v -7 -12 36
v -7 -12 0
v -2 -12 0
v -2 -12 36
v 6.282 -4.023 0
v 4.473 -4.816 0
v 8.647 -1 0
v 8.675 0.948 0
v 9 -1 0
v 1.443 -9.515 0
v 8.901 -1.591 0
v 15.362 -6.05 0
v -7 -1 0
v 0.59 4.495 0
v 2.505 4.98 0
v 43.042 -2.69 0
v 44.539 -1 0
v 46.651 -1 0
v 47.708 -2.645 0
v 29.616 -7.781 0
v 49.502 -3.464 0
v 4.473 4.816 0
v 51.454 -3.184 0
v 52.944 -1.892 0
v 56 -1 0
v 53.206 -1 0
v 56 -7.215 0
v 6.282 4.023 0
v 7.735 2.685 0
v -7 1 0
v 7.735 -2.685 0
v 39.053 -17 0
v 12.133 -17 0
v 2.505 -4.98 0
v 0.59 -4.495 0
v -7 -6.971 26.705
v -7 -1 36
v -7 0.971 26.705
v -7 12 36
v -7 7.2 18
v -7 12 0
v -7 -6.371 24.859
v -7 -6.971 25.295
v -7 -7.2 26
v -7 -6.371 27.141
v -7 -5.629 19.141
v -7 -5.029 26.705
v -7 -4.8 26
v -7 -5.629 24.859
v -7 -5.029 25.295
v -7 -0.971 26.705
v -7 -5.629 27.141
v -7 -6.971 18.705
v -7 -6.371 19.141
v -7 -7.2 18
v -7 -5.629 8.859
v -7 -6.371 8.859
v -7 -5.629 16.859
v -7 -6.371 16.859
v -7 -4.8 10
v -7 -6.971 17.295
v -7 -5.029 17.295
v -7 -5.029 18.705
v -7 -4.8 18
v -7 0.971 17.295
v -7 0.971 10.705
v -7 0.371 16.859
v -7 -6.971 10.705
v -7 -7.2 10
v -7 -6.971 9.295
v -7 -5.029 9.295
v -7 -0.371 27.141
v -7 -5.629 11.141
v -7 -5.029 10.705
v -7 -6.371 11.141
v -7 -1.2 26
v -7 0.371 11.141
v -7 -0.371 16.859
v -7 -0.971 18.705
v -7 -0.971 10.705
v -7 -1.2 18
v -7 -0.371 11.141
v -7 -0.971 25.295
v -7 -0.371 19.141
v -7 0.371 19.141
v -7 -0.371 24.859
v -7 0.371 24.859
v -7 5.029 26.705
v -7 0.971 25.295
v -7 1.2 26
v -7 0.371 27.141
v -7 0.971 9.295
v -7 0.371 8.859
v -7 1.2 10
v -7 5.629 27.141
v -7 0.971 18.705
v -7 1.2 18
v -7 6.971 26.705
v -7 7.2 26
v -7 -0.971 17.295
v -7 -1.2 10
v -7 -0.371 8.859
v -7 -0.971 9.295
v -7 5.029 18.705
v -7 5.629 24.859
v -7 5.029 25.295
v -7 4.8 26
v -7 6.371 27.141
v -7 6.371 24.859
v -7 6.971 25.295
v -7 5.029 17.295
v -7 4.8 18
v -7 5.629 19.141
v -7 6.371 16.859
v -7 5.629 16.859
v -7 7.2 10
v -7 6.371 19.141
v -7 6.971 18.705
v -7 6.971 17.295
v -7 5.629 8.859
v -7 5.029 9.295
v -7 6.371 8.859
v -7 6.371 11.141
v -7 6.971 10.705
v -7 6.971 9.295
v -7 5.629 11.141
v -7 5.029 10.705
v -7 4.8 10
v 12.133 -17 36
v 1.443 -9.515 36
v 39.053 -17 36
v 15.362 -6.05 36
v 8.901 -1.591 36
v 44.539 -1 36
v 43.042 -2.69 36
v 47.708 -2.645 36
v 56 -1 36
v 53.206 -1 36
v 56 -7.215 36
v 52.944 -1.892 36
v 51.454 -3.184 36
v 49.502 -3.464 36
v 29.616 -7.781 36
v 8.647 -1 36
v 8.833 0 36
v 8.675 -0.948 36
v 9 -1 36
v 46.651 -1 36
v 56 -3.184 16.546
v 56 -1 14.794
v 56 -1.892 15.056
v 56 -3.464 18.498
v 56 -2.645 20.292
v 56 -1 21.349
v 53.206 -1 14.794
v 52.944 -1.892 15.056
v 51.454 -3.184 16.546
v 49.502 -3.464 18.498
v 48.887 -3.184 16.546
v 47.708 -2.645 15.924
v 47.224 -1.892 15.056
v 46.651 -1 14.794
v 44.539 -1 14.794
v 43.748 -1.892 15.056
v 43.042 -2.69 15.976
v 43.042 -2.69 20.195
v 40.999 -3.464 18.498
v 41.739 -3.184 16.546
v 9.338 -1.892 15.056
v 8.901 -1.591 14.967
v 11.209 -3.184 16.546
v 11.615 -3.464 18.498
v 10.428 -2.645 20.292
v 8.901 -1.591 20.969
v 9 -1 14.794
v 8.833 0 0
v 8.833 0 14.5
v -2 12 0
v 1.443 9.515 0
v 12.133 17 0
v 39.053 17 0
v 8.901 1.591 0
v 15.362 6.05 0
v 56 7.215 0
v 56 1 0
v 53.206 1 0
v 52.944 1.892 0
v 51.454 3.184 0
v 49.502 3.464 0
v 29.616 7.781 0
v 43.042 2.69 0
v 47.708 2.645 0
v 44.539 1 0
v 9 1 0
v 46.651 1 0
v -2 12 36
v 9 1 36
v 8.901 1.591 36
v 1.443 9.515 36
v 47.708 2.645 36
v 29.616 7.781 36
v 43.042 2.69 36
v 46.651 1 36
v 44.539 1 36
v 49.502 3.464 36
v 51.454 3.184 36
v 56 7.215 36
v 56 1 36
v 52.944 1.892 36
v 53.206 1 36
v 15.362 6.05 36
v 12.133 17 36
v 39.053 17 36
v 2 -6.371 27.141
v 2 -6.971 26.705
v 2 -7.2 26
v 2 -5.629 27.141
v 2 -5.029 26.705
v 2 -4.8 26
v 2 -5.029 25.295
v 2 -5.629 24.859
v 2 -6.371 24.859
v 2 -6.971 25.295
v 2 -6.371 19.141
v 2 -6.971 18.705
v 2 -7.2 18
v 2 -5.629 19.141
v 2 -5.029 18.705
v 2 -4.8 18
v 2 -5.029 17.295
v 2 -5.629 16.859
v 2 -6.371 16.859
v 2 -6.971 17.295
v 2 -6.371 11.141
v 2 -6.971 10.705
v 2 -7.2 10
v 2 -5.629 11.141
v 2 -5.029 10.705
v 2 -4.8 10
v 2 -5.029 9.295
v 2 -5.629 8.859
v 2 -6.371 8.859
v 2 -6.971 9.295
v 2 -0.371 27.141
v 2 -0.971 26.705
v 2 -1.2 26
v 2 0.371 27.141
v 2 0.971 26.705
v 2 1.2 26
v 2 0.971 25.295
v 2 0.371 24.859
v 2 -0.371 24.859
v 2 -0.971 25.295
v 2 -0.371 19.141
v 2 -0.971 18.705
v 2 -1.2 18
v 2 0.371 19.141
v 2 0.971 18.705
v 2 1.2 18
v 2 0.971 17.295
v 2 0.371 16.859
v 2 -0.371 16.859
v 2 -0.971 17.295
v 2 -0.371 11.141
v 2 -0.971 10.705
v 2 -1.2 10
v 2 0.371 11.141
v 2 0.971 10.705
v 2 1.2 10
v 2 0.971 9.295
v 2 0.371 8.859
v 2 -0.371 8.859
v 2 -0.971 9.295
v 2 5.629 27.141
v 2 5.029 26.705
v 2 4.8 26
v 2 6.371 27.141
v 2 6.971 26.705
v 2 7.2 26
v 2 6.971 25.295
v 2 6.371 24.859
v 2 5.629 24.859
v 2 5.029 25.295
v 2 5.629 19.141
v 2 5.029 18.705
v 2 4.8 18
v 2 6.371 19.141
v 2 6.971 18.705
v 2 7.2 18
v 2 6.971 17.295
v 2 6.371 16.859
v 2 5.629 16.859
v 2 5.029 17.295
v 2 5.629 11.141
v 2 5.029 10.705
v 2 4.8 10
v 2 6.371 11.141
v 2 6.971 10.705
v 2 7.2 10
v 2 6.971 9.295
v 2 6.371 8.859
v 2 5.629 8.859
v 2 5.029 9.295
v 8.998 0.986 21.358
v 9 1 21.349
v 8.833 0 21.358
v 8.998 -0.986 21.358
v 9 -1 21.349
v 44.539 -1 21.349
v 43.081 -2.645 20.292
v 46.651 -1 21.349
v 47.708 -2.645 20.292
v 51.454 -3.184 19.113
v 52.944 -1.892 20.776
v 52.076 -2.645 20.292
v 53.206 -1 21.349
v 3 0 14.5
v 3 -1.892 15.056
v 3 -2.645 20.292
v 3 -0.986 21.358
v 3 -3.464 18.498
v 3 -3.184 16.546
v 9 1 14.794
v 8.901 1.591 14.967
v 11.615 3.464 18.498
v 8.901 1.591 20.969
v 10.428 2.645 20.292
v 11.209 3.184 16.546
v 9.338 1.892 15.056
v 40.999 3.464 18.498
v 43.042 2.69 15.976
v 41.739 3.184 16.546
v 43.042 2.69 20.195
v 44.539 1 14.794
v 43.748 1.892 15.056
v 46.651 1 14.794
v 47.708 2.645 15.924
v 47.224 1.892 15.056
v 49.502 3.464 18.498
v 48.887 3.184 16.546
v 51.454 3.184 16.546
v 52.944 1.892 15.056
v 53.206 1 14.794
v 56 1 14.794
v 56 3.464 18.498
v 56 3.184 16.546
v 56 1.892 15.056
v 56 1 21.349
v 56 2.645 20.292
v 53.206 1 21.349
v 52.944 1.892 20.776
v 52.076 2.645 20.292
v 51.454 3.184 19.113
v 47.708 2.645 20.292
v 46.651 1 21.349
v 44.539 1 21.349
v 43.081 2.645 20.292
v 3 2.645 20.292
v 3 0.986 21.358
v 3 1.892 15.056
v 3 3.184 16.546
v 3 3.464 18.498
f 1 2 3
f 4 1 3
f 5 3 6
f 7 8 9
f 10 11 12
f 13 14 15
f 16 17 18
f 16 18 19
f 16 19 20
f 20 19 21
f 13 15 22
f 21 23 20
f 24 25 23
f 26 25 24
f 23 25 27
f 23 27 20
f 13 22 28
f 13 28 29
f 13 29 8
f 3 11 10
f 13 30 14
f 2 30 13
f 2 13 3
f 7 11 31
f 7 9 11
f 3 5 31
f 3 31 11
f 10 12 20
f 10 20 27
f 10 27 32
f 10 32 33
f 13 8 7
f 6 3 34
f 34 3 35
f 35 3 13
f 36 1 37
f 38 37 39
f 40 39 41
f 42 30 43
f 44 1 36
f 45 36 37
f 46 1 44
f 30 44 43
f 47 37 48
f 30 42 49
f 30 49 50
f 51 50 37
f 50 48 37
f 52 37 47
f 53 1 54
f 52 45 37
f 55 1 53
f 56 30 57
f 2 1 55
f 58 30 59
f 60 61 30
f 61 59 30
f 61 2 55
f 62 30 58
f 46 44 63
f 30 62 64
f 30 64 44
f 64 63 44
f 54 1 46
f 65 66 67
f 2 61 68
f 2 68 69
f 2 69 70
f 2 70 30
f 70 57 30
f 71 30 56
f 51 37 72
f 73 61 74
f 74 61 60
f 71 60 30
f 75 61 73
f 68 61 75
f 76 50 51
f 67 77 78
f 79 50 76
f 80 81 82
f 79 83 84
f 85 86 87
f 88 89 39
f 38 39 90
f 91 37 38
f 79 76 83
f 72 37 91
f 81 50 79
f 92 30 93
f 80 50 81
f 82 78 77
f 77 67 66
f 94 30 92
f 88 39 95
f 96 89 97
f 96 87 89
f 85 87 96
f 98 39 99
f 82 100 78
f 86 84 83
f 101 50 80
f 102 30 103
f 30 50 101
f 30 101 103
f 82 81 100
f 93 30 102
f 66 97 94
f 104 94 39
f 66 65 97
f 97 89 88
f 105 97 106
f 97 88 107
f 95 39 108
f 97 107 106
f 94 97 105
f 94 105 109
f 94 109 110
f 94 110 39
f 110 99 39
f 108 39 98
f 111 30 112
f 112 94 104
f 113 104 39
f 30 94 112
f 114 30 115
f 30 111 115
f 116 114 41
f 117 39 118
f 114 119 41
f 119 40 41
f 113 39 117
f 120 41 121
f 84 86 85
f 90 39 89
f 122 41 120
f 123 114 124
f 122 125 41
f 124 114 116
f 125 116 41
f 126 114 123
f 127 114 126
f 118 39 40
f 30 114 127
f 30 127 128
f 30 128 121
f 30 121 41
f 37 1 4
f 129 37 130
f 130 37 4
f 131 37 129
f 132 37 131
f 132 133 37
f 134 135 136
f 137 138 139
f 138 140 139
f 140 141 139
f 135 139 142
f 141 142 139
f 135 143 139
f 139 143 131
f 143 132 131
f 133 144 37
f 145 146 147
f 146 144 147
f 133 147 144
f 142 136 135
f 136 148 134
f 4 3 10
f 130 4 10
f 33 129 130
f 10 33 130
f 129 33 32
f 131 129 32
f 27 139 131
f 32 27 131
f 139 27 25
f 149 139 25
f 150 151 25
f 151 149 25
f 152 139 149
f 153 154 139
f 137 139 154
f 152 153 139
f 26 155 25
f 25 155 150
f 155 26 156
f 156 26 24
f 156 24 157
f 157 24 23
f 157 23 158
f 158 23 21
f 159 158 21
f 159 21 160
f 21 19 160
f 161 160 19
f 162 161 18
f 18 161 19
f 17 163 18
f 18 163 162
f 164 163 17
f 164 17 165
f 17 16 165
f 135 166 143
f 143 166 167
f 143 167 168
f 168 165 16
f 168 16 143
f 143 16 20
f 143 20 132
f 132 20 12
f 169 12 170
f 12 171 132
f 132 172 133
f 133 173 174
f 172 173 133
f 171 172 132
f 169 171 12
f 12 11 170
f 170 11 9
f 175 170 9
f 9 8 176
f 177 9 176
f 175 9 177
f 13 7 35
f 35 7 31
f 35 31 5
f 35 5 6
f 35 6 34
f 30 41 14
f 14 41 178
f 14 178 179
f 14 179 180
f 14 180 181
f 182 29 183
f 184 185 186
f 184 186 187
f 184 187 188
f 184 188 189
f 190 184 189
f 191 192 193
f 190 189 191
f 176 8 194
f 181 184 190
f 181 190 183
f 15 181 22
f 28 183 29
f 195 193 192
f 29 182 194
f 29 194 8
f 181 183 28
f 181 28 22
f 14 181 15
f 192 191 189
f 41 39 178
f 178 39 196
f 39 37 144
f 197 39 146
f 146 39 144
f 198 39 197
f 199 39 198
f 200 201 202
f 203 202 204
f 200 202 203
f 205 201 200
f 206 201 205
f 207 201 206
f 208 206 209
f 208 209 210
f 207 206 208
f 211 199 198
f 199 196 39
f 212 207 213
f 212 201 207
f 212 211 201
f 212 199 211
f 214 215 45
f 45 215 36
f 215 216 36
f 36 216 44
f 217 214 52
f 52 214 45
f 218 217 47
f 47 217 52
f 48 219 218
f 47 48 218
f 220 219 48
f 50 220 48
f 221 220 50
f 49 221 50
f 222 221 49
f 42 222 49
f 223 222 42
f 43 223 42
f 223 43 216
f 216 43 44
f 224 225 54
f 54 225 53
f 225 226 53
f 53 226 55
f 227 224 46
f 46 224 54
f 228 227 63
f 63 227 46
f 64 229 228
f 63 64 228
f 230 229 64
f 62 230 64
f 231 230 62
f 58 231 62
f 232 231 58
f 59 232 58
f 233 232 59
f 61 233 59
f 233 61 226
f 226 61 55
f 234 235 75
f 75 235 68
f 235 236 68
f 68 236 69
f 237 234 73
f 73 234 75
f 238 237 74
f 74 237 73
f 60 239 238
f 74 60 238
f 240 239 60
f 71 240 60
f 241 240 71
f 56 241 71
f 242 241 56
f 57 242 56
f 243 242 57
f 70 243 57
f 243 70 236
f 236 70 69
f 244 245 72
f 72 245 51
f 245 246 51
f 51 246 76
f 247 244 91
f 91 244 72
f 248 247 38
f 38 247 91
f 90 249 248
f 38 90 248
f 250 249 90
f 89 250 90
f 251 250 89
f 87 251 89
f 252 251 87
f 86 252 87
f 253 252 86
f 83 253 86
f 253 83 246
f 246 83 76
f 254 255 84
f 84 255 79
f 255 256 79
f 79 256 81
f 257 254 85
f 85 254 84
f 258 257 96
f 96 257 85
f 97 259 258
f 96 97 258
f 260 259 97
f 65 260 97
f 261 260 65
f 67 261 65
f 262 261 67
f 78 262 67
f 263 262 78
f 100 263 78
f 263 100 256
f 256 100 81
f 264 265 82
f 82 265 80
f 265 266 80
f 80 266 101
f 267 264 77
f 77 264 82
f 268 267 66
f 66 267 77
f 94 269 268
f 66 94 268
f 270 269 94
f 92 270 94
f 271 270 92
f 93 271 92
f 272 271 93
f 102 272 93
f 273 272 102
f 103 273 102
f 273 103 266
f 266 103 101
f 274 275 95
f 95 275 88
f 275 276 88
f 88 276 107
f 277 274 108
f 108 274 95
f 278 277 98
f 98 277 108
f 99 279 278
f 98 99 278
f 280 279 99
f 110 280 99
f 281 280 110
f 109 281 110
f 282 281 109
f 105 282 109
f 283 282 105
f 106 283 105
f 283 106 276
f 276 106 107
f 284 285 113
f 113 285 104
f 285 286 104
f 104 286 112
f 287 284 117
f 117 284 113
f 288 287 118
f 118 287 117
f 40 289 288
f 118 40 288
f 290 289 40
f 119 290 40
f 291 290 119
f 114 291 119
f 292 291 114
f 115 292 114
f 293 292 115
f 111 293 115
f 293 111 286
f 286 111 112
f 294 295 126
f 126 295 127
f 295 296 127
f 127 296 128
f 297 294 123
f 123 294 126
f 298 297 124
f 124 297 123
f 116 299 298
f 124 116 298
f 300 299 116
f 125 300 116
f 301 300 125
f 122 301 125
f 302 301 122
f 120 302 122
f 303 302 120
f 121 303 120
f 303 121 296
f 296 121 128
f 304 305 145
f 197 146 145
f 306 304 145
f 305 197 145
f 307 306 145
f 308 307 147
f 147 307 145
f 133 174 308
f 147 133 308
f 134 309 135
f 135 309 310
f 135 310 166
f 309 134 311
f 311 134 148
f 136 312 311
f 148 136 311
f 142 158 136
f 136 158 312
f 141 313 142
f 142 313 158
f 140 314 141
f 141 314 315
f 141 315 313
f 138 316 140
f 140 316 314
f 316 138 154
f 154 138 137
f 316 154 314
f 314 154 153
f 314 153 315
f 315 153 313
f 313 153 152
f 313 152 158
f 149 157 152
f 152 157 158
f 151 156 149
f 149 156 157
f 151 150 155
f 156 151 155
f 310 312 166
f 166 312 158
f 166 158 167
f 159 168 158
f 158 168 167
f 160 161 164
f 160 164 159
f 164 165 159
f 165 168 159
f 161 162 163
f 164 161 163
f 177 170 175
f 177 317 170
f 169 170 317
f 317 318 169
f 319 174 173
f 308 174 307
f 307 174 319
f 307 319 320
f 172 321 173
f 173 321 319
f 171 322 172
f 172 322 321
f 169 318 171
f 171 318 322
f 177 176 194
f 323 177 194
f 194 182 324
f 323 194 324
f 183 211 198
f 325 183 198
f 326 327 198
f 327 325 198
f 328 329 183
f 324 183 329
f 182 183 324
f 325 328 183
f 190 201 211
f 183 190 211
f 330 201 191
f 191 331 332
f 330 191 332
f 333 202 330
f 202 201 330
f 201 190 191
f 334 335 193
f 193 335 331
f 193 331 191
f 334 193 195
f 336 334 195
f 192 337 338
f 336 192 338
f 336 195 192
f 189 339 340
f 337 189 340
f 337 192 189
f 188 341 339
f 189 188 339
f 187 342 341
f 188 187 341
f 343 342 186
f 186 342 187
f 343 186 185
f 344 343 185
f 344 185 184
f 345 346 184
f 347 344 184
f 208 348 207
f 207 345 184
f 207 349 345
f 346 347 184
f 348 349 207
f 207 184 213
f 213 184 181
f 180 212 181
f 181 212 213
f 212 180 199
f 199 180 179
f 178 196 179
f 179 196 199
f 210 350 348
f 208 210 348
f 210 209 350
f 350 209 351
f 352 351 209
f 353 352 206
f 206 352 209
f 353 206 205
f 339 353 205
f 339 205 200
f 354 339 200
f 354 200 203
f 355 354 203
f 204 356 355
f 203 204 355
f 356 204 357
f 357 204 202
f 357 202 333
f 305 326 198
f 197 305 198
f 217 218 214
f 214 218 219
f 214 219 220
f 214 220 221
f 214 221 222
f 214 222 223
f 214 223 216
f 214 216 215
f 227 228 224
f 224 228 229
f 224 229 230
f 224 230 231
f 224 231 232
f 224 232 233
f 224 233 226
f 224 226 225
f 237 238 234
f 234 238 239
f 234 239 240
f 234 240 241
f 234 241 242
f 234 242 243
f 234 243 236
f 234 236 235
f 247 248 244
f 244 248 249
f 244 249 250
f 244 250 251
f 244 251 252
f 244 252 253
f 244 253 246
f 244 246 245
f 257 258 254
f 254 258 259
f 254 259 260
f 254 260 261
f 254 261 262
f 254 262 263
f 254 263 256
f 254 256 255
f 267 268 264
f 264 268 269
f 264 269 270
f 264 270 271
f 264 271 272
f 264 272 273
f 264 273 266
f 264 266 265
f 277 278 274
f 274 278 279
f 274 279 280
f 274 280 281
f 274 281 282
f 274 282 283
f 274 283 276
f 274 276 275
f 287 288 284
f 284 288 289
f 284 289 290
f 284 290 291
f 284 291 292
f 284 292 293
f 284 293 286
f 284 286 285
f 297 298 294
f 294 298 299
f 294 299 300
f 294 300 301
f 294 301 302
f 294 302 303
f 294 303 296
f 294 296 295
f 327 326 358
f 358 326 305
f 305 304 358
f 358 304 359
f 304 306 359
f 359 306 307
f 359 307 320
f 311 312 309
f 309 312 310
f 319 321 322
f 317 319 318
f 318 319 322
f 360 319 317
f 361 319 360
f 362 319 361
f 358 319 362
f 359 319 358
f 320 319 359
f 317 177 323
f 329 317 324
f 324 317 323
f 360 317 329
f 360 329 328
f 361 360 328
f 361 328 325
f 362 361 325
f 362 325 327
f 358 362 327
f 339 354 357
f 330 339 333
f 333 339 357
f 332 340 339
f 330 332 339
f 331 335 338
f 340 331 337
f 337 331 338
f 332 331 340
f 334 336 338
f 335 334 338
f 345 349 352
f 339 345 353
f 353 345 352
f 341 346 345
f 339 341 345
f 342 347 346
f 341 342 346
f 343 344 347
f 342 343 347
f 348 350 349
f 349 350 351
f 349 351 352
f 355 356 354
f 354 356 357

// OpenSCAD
// file: raid3r/raid3r.scad
/*Pequeña biblioteca con las funciones mas comunes*/

module agujereado(X,Y,H){
	union(){
		for(j=[0:X-1])
		{
			translate([0,j*8,0])
			{
				for(i=[0:Y-1])
				{
					translate([i*6,0,-1])cylinder(r=1.2, h=H, $fn=10);
				}
			}
		}
	}
}

module dynahole(H){
	translate([-45.5/2,-10,1])union(){
		translate([3.5+6,16,0])agujereado(4,1,H);
		translate([9.5+26.5,16,0])agujereado(4,1,H);
		translate([45.5/2,10,-1])cylinder(r=11.5,h=H);	
		translate([(45.5-20)/2,6.5,-1])cube([20,36,H]);
		translate([22.5,46,0])union(){
			translate([7,0,-1])cylinder(r=1.5, h=H, $fn=10);
			translate([-7,0,-1])cylinder(r=1.5, h=H, $fn=10);
		}
	}
}

module cruz(H){
	translate([-34,-13,3])union(){
		translate([34,13,-3]) cylinder(r=4,h=H);
		translate([42,13,-3]) cylinder(r=1.5,h=H);
		translate([26,13,-3]) cylinder(r=1.5,h=H);
		translate([34,21,-3]) cylinder(r=1.5,h=H);
		translate([34,5,-3]) cylinder(r=1.5,h=H);
	}
}

module miniservo(H){
	translate([-15,-7,0])union(){
		translate([15,7,0])rotate([0,0,0])cylinder(r=8,h=H);
		translate([-1.75,7,0])union(){
			cylinder(r=1.5, h=H,$fn=20);
			translate([27.5,0,0])cylinder(r=1.5, h=H,$fn=20);
		}
	}
}

module beagleboneHoles(z){
union(){
	translate([0,0,-1])cylinder(r=2,h=z, $fn=8);
	translate([0,46.5,-1])cylinder(r=2,h=z, $fn=8);
	translate([64.5+1.5,2.5,-1])cylinder(r=2,h=z, $fn=8);
	translate([64.5+1.5,44,-1])cylinder(r=2,h=z, $fn=8);
	translate([0,0,-1])cylinder(r=3,h=3, $fn=8);
	translate([0,46.5,-1])cylinder(r=3,h=3, $fn=8);
	translate([64.5+1.5,2.5,-1])cylinder(r=3,h=3, $fn=8);
	translate([64.5+1.5,44,-1])cylinder(r=3,h=3, $fn=8);
	}
}
// main file
use <raid3r/raid3r.scad>



module base(){union(){
difference(){
	union(){
		cube([36,34,18]);
		translate([0,17,27])rotate([0,90,0])cylinder(r=6, h=36);

		translate([0,16.5,2])rotate([46,0,0])cube([36,18,23]);
		mirror([0,1,0])translate([0,-17.5,2])rotate([46,0,0])cube([36,18,23]);
	}
		translate([-1,17,27])rotate([0,90,0])cylinder(r=1.5, h=38, $fn=10);
		translate([5,0,20])cube([26,40,40]);
		translate([5,17,27])rotate([0,90,0])cylinder(r=7.5, h=26);
		translate([36-27,5.5,3])cube([36,23,12]);
		translate([36-5,0.5,3])cube([36,33,12]);
		translate([5,10,4])cube([4,36,10]);
		translate([13,3,9])rotate([0,90,0])cylinder(r=1, h=38, $fn=10);
		translate([13,31,9])rotate([0,90,0])cylinder(r=1, h=38, $fn=10);
}

//SOPORTE
/*
		translate([0,16.5,2])rotate([46,0,0])translate([0,5,21.5])cube([36,13,1.5]);
mirror([0,-1,0])translate([0,-17.5,2])rotate([46,0,0])translate([0,5,21.5])cube([36,13,1.5]);
		translate([0,17,31.5])rotate([0,90,0])cylinder(r=1.5, h=36, $fn=10);
/**/
}
}

module pinza(){
difference(){
	union(){
		difference(){
			translate([-4,0,0])cube([60,16,36]);
			translate([26,-23,-1])cylinder(r=30, h=38,$fn=13);
			translate([-20,-6.5,-1])rotate([0,0,35])cube([75,21,38]);
			translate([20,27,-1])rotate([0,0,-30])cube([75,21,38]);
		}
		translate([3,0,0])hull(){
			cylinder(r=6, h=36);
			translate([-10,-2,0])cube([5,13,36]);
	}
}

	

}
}

difference(){
union(){
color("blue",1)translate([0,-1,36])rotate([180,0,0])pinza();
color("blue",1)translate([0,1,0])rotate([0,0,0])pinza();
}

			translate([50,0,-5])cylinder(r=3.5, h=50);
			translate([3,0,18])rotate([0,90,0])cylinder(r=3.5, h=70);
			translate([-17,-6,10])rotate([90,0,90])agujereado(3,3,20);

}
